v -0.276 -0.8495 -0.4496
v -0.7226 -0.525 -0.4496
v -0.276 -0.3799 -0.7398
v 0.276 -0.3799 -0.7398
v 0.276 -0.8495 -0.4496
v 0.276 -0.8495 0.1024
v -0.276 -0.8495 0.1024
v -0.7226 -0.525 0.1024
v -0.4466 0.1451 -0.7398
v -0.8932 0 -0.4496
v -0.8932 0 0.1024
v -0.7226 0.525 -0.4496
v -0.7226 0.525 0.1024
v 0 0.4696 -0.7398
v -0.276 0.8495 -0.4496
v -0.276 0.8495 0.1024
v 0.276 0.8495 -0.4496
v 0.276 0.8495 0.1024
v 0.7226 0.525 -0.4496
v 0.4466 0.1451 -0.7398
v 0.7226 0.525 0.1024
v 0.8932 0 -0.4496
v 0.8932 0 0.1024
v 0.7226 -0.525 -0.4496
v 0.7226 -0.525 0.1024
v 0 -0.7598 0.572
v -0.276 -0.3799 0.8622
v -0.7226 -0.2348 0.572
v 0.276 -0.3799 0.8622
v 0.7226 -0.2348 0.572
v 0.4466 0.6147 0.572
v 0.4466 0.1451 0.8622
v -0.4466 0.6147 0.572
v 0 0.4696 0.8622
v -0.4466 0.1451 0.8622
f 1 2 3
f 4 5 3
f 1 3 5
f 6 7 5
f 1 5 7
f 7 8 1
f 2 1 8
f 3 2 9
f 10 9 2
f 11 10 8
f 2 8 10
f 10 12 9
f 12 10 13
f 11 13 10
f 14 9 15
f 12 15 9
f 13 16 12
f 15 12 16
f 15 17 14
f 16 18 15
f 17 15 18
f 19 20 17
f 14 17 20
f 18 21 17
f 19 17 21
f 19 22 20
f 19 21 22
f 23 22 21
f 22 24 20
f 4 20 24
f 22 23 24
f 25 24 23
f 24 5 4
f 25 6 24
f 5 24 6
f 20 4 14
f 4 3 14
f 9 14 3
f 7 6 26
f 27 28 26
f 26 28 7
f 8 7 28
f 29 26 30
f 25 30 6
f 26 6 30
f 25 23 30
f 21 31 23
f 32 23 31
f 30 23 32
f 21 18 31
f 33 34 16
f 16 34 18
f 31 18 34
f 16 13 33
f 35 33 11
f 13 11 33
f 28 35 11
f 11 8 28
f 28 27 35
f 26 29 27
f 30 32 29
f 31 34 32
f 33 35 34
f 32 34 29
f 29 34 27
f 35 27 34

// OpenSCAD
polyhedron( points = [[-0.27601999552683, -0.849502196815857, -0.449620927747432], [-0.722629730205731, -0.525021231101429, -0.449620927747432], [-0.893219469432234, 8.41884346193819e-11, -0.449620927747432], [-0.722629730957399, 0.525021231254484, -0.449620927747432], [-0.276019996743056, 0.849502196928809, -0.449620927747432], [0.276019994456902, 0.849502196928815, -0.449620927747432], [0.722629729164937, 0.525021231254484, -0.449620927747432], [0.893219468438585, 8.41884346193819e-11, -0.449620927747432], [0.722629730010899, -0.525021231101426, -0.449620927747432], [0.276019995825688, -0.849502196815857, -0.449620927747432], [-0.276019995502045, -0.379908931295684, -0.739845525918175], [-0.446609734358899, 0.145112299182325, -0.739845526222061], [2.0590473751892e-10, 0.469593264670524, -0.739845526222061], [0.44660973469266, 0.145112299074903, -0.739845526222062], [0.276019995665926, -0.379908931410503, -0.739845525847213], [-0.276019995502045, -0.849502196739578, 0.102419063605086], [0.276019995798978, -0.849502196739578, 0.102419063504022], [0.722629730320312, -0.525021231169495, 0.102419063365283], [0.893219469190817, -1.67861921153775e-10, 0.102419063241863], [0.722629730297524, 0.525021230849088, 0.102419063180905], [0.276019995762098, 0.849502196459272, 0.102419063205691], [-0.276019995538922, 0.849502196508845, 0.102419063306756], [-0.722629730089398, 0.525021230978862, 0.102419063445494], [-0.893219469007048, -7.45013798084997e-12, 0.102419063568914], [-0.722629730160894, -0.525021231039717, 0.102419063629872], [-0.722629729807038, -0.234796632287477, 0.572012328355791], [3.78349279865591e-10, -0.759817863492723, 0.572012328080721], [0.722629730330481, -0.234796632475292, 0.572012328113368], [0.446609734677799, 0.614705564044421, 0.572012328014735], [-0.446609734316727, 0.614705564107811, 0.572012328178261], [-0.276019995084731, -0.379908931603815, 0.862236926610199], [0.276019995856051, -0.379908931652262, 0.862236926753282], [0.446609734688674, 0.1451122992481, 0.862236926629863], [2.37854563358577e-10, 0.469593264790968, 0.862236926654649], [-0.446609733767444, 0.145112299465919, 0.862236926461142]], faces = [[0, 1, 10], [0, 10, 14, 9], [0, 9, 16, 15], [0, 15, 24, 1], [1, 2, 11, 10], [1, 24, 23, 2], [2, 3, 11], [2, 23, 22, 3], [3, 4, 12, 11], [3, 22, 21, 4], [4, 5, 12], [4, 21, 20, 5], [5, 6, 13, 12], [5, 20, 19, 6], [6, 7, 13], [6, 19, 18, 7], [7, 8, 14, 13], [7, 18, 17, 8], [8, 9, 14], [8, 17, 16, 9], [10, 11, 12, 13, 14], [15, 16, 26], [15, 26, 30, 25, 24], [16, 17, 27, 31, 26], [17, 18, 27], [18, 19, 28, 32, 27], [19, 20, 28], [20, 21, 29, 33, 28], [21, 22, 29], [22, 23, 25, 34, 29], [23, 24, 25], [25, 30, 34], [26, 31, 30], [27, 32, 31], [28, 33, 32], [29, 34, 33], [30, 31, 32, 33, 34]]);
